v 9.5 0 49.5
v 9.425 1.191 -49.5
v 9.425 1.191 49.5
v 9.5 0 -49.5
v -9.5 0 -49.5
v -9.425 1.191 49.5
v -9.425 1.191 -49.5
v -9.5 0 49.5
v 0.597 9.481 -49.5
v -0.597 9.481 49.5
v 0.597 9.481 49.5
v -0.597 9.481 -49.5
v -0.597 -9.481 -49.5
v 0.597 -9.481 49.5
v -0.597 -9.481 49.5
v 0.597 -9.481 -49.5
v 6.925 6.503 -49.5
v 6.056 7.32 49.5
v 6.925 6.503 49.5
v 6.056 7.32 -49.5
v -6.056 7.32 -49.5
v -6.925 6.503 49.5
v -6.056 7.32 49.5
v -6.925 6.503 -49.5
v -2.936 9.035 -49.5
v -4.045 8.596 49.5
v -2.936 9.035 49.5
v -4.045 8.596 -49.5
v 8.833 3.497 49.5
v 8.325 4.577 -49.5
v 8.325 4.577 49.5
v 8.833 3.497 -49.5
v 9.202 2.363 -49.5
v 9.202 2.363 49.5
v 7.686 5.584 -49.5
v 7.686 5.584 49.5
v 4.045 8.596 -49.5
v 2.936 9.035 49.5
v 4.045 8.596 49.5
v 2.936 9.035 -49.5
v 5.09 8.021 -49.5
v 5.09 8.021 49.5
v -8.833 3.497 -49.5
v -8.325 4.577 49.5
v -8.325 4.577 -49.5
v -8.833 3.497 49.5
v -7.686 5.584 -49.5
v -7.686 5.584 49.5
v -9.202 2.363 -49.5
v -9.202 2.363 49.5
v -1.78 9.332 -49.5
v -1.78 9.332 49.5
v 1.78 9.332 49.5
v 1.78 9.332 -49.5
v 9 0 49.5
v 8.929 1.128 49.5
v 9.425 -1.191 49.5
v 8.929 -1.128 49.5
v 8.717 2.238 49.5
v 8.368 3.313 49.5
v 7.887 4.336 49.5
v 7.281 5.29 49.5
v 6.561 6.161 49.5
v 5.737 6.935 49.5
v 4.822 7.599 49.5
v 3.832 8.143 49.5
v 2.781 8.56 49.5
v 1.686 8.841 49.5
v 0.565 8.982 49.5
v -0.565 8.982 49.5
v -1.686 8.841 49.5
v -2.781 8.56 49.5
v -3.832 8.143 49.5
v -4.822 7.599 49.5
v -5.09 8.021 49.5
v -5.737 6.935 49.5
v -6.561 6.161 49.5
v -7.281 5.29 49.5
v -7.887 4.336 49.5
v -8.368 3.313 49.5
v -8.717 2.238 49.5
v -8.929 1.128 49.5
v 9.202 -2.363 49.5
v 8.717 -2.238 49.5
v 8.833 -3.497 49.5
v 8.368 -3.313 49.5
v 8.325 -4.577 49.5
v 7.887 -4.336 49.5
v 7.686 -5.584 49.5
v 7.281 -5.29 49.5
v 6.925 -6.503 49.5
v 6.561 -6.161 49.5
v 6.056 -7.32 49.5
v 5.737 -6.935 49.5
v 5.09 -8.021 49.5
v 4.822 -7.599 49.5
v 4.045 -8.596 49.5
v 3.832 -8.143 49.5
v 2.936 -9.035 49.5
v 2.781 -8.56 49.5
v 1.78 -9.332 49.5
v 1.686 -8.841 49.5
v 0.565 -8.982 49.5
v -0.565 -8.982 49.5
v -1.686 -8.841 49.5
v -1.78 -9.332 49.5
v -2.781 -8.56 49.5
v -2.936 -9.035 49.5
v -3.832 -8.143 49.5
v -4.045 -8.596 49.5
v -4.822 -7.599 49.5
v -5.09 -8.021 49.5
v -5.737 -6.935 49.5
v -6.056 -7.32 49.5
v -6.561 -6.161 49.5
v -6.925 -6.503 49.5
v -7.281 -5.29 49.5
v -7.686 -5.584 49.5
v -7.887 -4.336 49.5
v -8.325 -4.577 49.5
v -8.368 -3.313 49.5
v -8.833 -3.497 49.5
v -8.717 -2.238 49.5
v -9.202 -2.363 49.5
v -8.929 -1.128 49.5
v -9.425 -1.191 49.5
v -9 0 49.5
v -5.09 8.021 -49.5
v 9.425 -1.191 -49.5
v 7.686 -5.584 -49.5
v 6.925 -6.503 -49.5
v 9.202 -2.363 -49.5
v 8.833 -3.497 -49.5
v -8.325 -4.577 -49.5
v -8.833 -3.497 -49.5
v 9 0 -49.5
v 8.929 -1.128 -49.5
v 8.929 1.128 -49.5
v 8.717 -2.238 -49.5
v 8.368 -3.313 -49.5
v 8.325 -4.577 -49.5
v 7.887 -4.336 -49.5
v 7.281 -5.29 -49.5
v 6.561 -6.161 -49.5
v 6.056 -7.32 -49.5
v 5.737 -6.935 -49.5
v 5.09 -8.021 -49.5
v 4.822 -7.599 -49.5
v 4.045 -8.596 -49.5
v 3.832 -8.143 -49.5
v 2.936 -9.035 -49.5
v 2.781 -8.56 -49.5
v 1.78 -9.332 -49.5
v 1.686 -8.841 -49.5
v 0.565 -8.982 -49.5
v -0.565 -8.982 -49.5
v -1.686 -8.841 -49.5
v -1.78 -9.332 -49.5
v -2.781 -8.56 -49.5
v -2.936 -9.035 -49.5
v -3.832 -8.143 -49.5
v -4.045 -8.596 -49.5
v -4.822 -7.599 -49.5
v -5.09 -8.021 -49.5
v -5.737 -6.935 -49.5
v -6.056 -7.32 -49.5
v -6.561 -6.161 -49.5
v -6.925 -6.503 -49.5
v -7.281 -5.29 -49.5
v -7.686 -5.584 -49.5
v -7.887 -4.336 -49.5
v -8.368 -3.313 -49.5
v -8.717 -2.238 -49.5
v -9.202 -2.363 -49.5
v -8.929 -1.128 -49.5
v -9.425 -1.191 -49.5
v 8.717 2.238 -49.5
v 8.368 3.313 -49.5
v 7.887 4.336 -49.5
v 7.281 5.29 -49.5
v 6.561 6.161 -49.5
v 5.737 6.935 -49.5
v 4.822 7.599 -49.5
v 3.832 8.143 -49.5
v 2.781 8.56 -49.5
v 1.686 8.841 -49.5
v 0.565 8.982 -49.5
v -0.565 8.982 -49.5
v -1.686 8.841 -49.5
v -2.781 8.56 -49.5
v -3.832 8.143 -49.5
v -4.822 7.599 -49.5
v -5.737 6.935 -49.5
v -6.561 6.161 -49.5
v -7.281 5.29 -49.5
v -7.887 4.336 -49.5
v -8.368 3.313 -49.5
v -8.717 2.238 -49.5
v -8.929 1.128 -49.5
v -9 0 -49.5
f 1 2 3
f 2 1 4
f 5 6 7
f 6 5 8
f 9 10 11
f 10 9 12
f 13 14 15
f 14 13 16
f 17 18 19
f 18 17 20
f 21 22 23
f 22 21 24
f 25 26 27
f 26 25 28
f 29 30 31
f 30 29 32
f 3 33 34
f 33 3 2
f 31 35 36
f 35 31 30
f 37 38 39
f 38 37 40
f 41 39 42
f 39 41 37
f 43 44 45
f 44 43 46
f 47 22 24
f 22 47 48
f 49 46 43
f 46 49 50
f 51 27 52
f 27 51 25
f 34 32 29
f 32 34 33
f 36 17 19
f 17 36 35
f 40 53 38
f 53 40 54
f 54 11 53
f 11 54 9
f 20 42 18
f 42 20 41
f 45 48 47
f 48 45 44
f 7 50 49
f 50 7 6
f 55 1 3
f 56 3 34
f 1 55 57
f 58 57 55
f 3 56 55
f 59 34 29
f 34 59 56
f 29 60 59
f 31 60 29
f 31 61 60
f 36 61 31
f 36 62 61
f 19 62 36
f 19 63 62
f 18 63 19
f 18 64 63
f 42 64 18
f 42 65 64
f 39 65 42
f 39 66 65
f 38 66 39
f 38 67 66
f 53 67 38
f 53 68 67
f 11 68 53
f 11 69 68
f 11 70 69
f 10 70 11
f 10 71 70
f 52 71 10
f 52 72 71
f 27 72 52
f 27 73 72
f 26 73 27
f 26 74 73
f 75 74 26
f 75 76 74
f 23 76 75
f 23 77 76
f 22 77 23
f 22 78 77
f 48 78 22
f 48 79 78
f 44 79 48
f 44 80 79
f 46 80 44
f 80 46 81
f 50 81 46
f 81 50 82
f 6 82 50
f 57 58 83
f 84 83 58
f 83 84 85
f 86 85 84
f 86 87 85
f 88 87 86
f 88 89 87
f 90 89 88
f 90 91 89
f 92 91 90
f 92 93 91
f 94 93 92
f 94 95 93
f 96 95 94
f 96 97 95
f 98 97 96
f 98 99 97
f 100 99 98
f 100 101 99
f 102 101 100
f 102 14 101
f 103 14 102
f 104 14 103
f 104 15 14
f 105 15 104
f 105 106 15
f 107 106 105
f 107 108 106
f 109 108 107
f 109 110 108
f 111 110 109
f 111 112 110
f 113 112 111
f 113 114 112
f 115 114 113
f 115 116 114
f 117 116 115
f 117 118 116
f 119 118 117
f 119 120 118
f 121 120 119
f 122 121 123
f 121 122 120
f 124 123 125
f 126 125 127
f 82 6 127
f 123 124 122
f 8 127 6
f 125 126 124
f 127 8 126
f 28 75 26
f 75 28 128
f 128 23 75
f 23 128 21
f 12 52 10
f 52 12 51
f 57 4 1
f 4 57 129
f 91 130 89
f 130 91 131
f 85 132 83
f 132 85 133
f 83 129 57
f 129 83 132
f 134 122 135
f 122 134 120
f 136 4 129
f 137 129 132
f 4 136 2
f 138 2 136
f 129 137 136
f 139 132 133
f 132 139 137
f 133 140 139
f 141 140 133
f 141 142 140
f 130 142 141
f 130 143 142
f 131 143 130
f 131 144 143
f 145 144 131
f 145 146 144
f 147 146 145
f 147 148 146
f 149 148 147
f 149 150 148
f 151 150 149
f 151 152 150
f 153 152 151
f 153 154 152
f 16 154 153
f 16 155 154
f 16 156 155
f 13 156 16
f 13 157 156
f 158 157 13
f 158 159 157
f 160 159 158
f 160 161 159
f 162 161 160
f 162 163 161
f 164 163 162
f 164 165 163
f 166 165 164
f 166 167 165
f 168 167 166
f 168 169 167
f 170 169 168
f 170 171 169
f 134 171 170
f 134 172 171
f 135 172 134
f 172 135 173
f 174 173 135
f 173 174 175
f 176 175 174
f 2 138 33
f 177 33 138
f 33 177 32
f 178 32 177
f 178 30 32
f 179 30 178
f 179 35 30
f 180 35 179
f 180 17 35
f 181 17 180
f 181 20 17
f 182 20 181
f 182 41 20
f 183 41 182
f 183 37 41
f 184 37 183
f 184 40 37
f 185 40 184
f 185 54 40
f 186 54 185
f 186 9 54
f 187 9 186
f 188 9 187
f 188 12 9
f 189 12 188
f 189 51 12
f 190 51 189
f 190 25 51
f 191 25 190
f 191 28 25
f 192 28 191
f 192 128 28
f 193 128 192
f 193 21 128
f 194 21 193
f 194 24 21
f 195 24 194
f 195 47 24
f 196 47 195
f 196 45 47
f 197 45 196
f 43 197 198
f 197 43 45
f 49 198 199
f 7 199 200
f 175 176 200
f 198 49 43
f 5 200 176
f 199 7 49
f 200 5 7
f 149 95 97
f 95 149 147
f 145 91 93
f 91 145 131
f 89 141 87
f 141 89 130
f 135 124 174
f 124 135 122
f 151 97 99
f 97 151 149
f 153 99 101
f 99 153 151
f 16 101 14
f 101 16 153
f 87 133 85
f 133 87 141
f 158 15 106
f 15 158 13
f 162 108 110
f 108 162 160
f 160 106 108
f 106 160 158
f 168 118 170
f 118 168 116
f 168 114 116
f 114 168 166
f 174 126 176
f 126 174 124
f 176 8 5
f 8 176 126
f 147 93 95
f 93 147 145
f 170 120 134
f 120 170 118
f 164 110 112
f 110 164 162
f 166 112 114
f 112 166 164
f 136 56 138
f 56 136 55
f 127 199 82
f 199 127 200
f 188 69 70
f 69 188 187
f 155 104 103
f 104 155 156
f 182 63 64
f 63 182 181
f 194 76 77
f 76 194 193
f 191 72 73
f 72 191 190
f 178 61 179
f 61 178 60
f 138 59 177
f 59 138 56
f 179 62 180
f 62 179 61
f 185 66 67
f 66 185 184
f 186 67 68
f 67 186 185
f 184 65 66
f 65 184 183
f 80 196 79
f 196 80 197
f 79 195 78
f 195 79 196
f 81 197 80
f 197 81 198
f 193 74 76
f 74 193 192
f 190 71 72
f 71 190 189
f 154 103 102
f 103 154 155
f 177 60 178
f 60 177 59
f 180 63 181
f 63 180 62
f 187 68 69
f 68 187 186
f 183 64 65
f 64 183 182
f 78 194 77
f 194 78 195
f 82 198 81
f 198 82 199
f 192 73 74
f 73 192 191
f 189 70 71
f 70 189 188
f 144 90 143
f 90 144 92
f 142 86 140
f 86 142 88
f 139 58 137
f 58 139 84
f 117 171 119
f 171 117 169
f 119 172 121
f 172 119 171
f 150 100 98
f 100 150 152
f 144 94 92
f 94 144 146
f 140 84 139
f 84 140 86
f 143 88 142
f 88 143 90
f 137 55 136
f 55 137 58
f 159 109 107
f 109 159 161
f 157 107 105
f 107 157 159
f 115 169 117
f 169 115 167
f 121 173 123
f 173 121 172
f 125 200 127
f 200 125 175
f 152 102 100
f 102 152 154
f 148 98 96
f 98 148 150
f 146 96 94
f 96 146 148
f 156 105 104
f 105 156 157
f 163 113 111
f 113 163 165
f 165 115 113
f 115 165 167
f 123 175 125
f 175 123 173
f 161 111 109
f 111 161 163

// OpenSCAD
$fn = 50;


difference() {
	union() {
		translate(v = [0, 0, -49.5000000000]) {
			cylinder(h = 99, r = 9.5000000000);
		}
	}
	union() {
		translate(v = [0, 0, -100.0000000000]) {
			cylinder(h = 200, r = 9);
		}
	}
}
